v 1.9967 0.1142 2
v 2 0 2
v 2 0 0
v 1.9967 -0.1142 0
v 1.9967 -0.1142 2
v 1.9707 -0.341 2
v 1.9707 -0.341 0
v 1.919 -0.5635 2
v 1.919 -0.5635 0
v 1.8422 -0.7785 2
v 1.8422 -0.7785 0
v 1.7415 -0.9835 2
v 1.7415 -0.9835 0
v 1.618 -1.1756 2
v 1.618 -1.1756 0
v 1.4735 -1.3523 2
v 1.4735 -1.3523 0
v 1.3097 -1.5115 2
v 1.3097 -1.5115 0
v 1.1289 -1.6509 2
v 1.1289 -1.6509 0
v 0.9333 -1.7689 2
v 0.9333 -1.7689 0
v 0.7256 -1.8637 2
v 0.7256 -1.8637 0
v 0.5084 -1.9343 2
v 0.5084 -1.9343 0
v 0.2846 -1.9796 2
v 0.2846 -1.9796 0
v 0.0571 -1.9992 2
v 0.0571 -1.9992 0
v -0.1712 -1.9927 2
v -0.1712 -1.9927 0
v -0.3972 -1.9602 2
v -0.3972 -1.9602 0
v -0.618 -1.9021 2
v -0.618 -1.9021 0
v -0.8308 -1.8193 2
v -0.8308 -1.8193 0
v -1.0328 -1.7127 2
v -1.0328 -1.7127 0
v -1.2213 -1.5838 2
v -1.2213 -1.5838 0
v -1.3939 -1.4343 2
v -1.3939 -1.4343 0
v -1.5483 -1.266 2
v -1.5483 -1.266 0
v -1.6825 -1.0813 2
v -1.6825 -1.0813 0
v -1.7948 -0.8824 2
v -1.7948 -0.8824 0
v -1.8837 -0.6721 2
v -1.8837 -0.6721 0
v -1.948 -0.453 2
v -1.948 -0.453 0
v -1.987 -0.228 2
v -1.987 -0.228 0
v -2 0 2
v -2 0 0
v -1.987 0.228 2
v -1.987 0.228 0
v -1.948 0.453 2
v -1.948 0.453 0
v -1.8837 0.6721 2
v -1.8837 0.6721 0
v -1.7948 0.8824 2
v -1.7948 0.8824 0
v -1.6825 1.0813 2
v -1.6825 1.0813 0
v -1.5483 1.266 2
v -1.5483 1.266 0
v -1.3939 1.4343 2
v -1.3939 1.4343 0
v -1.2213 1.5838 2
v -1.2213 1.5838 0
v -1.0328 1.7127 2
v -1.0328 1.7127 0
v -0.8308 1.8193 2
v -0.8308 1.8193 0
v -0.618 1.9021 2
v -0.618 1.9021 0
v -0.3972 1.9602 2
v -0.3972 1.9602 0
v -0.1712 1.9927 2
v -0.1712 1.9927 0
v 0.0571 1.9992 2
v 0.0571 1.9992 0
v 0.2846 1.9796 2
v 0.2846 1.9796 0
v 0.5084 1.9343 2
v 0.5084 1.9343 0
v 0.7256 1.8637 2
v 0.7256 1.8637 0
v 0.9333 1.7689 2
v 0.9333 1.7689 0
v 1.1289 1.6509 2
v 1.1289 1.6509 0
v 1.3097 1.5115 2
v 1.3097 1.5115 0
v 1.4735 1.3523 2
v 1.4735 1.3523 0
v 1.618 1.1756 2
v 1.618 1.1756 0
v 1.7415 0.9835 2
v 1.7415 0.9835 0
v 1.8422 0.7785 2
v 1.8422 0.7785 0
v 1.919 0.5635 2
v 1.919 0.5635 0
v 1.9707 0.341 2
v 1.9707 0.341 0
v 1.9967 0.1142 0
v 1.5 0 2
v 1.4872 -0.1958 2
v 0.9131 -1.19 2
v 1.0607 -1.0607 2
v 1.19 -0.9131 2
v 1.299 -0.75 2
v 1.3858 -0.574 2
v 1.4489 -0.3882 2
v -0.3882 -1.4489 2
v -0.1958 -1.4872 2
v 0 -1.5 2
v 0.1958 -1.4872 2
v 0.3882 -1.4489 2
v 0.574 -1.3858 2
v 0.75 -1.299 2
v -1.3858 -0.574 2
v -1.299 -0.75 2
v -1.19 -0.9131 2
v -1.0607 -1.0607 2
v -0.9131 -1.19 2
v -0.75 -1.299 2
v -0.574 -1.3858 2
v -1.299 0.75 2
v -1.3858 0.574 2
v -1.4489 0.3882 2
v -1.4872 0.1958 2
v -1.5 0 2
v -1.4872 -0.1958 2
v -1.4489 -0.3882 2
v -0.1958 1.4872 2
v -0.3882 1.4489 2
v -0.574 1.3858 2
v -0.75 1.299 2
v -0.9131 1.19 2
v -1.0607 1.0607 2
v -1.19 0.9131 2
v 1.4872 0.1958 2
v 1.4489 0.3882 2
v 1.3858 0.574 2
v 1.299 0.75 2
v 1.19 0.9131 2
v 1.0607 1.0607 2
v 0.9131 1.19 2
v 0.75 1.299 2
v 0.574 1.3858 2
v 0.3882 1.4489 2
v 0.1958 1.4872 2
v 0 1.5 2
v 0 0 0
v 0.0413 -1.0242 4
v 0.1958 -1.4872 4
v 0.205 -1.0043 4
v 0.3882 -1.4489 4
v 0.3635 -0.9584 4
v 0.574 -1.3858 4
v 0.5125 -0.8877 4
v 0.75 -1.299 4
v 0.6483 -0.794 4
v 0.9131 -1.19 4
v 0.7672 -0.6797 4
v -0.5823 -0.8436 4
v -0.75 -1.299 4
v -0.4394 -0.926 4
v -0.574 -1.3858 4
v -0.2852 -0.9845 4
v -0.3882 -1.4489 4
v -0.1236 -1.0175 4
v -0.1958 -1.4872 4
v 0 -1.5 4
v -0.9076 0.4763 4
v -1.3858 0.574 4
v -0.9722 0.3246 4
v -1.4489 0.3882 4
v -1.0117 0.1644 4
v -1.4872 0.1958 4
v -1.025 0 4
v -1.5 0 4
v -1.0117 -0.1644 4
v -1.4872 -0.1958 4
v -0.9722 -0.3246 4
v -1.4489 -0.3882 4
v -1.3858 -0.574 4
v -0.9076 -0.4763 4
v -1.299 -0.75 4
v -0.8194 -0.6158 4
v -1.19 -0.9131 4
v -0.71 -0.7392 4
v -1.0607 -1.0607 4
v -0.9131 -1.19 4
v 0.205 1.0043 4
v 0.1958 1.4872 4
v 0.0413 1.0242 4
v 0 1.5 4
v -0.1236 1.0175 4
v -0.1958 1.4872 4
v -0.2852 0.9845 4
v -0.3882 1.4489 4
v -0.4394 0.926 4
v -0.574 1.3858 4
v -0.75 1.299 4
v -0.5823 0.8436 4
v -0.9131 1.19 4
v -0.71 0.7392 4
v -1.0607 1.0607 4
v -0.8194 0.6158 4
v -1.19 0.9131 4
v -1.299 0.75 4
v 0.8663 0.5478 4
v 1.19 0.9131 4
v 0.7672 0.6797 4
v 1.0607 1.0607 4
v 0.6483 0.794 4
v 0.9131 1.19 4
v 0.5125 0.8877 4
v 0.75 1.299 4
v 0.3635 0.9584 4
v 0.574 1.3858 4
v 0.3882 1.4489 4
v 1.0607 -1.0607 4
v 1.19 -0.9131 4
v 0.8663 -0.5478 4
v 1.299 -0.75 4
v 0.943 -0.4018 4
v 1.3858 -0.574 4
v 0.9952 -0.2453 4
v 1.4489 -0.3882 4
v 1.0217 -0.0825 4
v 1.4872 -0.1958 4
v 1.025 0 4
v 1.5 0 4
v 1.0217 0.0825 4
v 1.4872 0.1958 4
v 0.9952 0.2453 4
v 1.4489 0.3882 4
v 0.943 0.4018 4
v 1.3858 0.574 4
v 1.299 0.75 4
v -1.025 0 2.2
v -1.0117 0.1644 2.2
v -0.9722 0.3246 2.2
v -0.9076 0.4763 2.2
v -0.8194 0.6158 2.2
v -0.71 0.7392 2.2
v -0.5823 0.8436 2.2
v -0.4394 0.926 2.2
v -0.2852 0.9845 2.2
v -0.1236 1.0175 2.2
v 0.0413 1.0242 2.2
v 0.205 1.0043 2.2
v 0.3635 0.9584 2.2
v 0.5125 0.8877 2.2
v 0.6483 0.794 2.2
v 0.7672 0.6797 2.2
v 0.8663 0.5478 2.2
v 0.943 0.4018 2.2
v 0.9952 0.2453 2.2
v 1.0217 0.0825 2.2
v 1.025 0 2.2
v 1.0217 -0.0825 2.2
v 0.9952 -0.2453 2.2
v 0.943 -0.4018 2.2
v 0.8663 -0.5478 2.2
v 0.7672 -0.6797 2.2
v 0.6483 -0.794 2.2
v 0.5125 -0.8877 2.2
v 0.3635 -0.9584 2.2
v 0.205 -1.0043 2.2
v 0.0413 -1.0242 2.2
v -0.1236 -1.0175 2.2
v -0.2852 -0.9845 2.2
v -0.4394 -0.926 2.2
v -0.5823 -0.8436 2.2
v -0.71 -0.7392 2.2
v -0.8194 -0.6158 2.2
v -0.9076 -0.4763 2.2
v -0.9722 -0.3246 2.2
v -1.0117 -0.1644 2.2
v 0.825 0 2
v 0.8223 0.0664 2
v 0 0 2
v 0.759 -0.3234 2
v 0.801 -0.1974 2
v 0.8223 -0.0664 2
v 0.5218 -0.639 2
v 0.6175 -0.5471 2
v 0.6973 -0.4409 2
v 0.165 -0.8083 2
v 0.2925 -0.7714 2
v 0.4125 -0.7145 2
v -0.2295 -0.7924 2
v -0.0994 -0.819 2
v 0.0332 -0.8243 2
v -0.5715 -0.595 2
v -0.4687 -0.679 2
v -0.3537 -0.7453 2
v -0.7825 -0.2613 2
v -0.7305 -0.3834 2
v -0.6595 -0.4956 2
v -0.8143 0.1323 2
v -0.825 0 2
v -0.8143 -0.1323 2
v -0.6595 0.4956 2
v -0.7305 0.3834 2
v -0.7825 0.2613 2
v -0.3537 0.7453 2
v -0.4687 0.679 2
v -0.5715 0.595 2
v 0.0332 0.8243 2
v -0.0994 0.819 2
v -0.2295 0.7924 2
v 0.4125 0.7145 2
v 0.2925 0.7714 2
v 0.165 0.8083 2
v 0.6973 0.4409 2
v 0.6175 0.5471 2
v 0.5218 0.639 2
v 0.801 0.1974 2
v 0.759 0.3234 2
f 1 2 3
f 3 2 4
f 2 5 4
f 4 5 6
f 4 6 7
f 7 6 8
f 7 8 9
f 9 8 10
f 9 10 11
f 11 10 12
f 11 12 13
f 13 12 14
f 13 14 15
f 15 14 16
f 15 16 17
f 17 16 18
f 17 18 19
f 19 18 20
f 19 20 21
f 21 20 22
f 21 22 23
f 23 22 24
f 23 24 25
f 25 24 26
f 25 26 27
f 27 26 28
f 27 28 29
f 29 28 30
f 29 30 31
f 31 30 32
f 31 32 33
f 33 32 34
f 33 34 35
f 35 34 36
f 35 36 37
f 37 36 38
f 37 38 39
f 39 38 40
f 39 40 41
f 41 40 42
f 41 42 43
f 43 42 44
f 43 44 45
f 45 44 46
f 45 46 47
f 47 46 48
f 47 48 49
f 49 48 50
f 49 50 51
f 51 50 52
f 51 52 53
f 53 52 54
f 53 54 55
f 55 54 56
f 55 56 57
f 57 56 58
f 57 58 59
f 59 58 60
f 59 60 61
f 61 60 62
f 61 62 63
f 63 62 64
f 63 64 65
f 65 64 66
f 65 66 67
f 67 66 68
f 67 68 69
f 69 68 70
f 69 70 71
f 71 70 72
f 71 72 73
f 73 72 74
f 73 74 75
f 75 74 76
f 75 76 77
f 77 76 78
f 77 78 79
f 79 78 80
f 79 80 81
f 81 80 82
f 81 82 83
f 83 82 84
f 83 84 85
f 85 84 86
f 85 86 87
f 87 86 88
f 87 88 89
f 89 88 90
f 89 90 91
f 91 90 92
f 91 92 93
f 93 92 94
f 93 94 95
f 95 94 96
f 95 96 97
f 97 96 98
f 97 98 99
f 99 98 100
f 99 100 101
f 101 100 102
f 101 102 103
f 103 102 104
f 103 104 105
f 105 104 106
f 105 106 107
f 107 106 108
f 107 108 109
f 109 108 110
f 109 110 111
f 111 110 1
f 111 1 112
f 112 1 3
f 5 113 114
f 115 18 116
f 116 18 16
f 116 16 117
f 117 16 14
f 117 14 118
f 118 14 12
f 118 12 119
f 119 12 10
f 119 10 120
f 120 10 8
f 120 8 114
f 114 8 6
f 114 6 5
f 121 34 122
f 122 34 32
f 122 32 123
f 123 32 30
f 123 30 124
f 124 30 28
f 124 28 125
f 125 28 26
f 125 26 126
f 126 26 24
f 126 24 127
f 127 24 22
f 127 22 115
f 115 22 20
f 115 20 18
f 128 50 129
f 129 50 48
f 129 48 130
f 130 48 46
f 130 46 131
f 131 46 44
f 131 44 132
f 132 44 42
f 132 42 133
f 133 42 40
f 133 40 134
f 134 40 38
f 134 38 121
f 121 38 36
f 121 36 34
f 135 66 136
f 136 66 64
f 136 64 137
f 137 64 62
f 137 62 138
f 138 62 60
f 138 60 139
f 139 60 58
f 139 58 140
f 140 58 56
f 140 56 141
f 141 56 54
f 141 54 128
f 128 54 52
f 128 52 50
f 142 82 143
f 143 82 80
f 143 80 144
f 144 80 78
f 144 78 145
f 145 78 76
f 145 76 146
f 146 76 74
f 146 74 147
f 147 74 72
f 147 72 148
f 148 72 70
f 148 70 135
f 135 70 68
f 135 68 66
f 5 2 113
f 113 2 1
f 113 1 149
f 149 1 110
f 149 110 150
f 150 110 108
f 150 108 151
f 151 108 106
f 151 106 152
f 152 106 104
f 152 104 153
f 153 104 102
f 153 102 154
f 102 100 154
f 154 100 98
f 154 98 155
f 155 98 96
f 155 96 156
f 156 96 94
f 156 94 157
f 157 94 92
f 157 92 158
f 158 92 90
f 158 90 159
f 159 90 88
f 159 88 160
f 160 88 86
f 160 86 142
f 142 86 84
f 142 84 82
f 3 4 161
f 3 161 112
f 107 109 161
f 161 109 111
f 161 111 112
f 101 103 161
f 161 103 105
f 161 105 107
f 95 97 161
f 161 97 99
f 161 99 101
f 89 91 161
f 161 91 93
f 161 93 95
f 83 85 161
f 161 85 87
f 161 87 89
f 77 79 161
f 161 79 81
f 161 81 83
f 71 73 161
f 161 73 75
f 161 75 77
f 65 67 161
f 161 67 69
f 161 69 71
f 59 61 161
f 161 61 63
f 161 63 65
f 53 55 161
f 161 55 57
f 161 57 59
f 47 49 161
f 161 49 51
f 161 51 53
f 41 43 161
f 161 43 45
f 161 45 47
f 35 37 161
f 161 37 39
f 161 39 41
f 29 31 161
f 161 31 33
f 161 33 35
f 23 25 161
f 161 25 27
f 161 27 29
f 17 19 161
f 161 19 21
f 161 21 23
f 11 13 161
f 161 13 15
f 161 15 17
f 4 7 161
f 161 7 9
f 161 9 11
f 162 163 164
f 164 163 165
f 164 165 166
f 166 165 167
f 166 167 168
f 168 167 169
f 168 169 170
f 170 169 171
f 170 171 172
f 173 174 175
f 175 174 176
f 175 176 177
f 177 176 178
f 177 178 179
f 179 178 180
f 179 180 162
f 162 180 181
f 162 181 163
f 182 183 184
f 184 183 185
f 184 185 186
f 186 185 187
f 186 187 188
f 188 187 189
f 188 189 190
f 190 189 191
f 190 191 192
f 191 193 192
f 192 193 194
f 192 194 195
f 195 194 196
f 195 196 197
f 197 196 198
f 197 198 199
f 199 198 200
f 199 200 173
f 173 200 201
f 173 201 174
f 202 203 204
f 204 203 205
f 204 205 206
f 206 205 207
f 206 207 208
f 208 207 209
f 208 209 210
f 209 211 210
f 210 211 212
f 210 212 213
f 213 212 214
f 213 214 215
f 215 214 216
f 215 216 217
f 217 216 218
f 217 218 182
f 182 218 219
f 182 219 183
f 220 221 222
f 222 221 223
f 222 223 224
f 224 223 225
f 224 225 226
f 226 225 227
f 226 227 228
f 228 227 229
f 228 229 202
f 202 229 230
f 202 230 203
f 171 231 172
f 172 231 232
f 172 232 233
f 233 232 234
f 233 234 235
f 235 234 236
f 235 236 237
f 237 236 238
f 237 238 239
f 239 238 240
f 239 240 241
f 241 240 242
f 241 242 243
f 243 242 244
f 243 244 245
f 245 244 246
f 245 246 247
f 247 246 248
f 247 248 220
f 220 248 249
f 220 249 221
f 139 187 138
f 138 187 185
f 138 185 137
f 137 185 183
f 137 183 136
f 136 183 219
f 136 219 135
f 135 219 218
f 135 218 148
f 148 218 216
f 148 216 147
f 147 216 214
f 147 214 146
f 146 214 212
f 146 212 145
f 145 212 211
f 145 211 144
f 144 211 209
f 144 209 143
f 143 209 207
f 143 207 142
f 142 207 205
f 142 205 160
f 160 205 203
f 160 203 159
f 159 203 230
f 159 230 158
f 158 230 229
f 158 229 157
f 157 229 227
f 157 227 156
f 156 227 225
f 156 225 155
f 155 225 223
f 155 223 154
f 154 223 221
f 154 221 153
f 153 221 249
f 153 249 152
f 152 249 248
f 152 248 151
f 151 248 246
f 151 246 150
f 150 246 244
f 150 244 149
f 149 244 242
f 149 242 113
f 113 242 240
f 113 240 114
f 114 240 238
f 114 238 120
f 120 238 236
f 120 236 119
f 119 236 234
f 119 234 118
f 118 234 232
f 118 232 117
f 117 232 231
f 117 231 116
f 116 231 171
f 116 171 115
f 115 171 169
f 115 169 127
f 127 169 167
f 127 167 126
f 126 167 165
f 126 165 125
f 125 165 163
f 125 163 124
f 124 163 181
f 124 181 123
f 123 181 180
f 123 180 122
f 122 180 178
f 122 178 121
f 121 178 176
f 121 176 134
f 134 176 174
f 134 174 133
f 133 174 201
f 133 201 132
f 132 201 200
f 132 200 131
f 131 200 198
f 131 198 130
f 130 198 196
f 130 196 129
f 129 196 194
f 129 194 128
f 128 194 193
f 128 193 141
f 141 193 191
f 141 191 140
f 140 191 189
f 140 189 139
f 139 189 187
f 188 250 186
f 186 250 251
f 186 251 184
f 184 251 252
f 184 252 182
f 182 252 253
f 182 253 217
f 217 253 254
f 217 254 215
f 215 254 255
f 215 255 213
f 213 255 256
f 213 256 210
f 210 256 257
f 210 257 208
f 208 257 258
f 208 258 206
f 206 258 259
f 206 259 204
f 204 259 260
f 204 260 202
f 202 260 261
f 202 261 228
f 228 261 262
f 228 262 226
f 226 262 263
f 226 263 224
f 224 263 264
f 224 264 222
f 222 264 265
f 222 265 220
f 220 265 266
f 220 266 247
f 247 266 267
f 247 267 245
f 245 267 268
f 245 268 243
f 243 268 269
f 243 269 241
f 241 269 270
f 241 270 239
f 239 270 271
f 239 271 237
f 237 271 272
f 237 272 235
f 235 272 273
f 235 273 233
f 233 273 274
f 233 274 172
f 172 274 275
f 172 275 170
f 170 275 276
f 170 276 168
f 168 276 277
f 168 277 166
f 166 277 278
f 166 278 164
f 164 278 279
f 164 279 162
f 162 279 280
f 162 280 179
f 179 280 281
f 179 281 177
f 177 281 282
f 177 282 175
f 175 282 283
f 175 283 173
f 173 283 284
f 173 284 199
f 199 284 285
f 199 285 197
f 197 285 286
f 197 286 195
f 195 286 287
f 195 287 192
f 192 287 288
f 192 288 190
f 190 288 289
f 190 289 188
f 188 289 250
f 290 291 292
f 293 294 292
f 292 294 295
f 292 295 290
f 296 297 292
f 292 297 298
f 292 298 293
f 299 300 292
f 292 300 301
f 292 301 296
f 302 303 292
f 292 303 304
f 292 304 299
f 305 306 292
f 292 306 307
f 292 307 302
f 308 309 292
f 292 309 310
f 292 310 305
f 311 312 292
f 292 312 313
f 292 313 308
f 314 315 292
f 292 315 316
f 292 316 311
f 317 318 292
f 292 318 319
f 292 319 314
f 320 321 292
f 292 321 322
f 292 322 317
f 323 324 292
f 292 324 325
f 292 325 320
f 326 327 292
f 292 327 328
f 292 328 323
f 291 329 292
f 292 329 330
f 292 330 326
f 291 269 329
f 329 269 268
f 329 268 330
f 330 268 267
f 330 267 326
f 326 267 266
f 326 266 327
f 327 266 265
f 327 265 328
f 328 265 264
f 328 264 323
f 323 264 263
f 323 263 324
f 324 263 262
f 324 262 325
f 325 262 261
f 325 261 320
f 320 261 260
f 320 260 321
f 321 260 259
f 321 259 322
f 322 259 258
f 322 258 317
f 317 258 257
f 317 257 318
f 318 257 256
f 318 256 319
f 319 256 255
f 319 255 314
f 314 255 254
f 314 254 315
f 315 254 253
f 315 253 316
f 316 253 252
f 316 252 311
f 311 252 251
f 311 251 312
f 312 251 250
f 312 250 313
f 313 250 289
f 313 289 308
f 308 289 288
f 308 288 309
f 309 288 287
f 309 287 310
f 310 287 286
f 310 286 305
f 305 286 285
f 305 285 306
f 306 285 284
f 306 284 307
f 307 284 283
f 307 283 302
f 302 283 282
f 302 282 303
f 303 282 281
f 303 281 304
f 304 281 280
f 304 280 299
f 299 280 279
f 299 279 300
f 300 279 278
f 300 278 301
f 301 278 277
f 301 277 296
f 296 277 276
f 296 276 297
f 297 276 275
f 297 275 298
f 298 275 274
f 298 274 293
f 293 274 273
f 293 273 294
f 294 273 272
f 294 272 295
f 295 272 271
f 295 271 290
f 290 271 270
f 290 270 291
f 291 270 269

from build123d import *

# Parameters (mm, degrees)
CROQUIS1_R              = 2
SALIENTE_EXTRUIR1_DEPTH = 2
CROQUIS2_R              = 1.5
CROQUIS2_R_2            = 1.025
SALIENTE_EXTRUIR2_DEPTH = 2
CHAFL_N1_SIZE           = 0.2


with BuildPart() as part:
    # Croquis1 → Saliente-Extruir1 (new body)
    with BuildSketch(Plane.XY):
        Circle(CROQUIS1_R)
    extrude(amount=SALIENTE_EXTRUIR1_DEPTH)

    # Croquis2 → Saliente-Extruir2 (add)
    with BuildSketch(Plane.XY.offset(2)):
        Circle(CROQUIS2_R)
        Circle(CROQUIS2_R_2, mode=Mode.SUBTRACT)
    extrude(amount=SALIENTE_EXTRUIR2_DEPTH)

    # Chaflán1
    chafl_n1_edges = [part.edges().sort_by_distance(p)[0] for p in [
        (-1.025, 0, 2),
    ]]
    chamfer(chafl_n1_edges, length=CHAFL_N1_SIZE)


solid = part.part
